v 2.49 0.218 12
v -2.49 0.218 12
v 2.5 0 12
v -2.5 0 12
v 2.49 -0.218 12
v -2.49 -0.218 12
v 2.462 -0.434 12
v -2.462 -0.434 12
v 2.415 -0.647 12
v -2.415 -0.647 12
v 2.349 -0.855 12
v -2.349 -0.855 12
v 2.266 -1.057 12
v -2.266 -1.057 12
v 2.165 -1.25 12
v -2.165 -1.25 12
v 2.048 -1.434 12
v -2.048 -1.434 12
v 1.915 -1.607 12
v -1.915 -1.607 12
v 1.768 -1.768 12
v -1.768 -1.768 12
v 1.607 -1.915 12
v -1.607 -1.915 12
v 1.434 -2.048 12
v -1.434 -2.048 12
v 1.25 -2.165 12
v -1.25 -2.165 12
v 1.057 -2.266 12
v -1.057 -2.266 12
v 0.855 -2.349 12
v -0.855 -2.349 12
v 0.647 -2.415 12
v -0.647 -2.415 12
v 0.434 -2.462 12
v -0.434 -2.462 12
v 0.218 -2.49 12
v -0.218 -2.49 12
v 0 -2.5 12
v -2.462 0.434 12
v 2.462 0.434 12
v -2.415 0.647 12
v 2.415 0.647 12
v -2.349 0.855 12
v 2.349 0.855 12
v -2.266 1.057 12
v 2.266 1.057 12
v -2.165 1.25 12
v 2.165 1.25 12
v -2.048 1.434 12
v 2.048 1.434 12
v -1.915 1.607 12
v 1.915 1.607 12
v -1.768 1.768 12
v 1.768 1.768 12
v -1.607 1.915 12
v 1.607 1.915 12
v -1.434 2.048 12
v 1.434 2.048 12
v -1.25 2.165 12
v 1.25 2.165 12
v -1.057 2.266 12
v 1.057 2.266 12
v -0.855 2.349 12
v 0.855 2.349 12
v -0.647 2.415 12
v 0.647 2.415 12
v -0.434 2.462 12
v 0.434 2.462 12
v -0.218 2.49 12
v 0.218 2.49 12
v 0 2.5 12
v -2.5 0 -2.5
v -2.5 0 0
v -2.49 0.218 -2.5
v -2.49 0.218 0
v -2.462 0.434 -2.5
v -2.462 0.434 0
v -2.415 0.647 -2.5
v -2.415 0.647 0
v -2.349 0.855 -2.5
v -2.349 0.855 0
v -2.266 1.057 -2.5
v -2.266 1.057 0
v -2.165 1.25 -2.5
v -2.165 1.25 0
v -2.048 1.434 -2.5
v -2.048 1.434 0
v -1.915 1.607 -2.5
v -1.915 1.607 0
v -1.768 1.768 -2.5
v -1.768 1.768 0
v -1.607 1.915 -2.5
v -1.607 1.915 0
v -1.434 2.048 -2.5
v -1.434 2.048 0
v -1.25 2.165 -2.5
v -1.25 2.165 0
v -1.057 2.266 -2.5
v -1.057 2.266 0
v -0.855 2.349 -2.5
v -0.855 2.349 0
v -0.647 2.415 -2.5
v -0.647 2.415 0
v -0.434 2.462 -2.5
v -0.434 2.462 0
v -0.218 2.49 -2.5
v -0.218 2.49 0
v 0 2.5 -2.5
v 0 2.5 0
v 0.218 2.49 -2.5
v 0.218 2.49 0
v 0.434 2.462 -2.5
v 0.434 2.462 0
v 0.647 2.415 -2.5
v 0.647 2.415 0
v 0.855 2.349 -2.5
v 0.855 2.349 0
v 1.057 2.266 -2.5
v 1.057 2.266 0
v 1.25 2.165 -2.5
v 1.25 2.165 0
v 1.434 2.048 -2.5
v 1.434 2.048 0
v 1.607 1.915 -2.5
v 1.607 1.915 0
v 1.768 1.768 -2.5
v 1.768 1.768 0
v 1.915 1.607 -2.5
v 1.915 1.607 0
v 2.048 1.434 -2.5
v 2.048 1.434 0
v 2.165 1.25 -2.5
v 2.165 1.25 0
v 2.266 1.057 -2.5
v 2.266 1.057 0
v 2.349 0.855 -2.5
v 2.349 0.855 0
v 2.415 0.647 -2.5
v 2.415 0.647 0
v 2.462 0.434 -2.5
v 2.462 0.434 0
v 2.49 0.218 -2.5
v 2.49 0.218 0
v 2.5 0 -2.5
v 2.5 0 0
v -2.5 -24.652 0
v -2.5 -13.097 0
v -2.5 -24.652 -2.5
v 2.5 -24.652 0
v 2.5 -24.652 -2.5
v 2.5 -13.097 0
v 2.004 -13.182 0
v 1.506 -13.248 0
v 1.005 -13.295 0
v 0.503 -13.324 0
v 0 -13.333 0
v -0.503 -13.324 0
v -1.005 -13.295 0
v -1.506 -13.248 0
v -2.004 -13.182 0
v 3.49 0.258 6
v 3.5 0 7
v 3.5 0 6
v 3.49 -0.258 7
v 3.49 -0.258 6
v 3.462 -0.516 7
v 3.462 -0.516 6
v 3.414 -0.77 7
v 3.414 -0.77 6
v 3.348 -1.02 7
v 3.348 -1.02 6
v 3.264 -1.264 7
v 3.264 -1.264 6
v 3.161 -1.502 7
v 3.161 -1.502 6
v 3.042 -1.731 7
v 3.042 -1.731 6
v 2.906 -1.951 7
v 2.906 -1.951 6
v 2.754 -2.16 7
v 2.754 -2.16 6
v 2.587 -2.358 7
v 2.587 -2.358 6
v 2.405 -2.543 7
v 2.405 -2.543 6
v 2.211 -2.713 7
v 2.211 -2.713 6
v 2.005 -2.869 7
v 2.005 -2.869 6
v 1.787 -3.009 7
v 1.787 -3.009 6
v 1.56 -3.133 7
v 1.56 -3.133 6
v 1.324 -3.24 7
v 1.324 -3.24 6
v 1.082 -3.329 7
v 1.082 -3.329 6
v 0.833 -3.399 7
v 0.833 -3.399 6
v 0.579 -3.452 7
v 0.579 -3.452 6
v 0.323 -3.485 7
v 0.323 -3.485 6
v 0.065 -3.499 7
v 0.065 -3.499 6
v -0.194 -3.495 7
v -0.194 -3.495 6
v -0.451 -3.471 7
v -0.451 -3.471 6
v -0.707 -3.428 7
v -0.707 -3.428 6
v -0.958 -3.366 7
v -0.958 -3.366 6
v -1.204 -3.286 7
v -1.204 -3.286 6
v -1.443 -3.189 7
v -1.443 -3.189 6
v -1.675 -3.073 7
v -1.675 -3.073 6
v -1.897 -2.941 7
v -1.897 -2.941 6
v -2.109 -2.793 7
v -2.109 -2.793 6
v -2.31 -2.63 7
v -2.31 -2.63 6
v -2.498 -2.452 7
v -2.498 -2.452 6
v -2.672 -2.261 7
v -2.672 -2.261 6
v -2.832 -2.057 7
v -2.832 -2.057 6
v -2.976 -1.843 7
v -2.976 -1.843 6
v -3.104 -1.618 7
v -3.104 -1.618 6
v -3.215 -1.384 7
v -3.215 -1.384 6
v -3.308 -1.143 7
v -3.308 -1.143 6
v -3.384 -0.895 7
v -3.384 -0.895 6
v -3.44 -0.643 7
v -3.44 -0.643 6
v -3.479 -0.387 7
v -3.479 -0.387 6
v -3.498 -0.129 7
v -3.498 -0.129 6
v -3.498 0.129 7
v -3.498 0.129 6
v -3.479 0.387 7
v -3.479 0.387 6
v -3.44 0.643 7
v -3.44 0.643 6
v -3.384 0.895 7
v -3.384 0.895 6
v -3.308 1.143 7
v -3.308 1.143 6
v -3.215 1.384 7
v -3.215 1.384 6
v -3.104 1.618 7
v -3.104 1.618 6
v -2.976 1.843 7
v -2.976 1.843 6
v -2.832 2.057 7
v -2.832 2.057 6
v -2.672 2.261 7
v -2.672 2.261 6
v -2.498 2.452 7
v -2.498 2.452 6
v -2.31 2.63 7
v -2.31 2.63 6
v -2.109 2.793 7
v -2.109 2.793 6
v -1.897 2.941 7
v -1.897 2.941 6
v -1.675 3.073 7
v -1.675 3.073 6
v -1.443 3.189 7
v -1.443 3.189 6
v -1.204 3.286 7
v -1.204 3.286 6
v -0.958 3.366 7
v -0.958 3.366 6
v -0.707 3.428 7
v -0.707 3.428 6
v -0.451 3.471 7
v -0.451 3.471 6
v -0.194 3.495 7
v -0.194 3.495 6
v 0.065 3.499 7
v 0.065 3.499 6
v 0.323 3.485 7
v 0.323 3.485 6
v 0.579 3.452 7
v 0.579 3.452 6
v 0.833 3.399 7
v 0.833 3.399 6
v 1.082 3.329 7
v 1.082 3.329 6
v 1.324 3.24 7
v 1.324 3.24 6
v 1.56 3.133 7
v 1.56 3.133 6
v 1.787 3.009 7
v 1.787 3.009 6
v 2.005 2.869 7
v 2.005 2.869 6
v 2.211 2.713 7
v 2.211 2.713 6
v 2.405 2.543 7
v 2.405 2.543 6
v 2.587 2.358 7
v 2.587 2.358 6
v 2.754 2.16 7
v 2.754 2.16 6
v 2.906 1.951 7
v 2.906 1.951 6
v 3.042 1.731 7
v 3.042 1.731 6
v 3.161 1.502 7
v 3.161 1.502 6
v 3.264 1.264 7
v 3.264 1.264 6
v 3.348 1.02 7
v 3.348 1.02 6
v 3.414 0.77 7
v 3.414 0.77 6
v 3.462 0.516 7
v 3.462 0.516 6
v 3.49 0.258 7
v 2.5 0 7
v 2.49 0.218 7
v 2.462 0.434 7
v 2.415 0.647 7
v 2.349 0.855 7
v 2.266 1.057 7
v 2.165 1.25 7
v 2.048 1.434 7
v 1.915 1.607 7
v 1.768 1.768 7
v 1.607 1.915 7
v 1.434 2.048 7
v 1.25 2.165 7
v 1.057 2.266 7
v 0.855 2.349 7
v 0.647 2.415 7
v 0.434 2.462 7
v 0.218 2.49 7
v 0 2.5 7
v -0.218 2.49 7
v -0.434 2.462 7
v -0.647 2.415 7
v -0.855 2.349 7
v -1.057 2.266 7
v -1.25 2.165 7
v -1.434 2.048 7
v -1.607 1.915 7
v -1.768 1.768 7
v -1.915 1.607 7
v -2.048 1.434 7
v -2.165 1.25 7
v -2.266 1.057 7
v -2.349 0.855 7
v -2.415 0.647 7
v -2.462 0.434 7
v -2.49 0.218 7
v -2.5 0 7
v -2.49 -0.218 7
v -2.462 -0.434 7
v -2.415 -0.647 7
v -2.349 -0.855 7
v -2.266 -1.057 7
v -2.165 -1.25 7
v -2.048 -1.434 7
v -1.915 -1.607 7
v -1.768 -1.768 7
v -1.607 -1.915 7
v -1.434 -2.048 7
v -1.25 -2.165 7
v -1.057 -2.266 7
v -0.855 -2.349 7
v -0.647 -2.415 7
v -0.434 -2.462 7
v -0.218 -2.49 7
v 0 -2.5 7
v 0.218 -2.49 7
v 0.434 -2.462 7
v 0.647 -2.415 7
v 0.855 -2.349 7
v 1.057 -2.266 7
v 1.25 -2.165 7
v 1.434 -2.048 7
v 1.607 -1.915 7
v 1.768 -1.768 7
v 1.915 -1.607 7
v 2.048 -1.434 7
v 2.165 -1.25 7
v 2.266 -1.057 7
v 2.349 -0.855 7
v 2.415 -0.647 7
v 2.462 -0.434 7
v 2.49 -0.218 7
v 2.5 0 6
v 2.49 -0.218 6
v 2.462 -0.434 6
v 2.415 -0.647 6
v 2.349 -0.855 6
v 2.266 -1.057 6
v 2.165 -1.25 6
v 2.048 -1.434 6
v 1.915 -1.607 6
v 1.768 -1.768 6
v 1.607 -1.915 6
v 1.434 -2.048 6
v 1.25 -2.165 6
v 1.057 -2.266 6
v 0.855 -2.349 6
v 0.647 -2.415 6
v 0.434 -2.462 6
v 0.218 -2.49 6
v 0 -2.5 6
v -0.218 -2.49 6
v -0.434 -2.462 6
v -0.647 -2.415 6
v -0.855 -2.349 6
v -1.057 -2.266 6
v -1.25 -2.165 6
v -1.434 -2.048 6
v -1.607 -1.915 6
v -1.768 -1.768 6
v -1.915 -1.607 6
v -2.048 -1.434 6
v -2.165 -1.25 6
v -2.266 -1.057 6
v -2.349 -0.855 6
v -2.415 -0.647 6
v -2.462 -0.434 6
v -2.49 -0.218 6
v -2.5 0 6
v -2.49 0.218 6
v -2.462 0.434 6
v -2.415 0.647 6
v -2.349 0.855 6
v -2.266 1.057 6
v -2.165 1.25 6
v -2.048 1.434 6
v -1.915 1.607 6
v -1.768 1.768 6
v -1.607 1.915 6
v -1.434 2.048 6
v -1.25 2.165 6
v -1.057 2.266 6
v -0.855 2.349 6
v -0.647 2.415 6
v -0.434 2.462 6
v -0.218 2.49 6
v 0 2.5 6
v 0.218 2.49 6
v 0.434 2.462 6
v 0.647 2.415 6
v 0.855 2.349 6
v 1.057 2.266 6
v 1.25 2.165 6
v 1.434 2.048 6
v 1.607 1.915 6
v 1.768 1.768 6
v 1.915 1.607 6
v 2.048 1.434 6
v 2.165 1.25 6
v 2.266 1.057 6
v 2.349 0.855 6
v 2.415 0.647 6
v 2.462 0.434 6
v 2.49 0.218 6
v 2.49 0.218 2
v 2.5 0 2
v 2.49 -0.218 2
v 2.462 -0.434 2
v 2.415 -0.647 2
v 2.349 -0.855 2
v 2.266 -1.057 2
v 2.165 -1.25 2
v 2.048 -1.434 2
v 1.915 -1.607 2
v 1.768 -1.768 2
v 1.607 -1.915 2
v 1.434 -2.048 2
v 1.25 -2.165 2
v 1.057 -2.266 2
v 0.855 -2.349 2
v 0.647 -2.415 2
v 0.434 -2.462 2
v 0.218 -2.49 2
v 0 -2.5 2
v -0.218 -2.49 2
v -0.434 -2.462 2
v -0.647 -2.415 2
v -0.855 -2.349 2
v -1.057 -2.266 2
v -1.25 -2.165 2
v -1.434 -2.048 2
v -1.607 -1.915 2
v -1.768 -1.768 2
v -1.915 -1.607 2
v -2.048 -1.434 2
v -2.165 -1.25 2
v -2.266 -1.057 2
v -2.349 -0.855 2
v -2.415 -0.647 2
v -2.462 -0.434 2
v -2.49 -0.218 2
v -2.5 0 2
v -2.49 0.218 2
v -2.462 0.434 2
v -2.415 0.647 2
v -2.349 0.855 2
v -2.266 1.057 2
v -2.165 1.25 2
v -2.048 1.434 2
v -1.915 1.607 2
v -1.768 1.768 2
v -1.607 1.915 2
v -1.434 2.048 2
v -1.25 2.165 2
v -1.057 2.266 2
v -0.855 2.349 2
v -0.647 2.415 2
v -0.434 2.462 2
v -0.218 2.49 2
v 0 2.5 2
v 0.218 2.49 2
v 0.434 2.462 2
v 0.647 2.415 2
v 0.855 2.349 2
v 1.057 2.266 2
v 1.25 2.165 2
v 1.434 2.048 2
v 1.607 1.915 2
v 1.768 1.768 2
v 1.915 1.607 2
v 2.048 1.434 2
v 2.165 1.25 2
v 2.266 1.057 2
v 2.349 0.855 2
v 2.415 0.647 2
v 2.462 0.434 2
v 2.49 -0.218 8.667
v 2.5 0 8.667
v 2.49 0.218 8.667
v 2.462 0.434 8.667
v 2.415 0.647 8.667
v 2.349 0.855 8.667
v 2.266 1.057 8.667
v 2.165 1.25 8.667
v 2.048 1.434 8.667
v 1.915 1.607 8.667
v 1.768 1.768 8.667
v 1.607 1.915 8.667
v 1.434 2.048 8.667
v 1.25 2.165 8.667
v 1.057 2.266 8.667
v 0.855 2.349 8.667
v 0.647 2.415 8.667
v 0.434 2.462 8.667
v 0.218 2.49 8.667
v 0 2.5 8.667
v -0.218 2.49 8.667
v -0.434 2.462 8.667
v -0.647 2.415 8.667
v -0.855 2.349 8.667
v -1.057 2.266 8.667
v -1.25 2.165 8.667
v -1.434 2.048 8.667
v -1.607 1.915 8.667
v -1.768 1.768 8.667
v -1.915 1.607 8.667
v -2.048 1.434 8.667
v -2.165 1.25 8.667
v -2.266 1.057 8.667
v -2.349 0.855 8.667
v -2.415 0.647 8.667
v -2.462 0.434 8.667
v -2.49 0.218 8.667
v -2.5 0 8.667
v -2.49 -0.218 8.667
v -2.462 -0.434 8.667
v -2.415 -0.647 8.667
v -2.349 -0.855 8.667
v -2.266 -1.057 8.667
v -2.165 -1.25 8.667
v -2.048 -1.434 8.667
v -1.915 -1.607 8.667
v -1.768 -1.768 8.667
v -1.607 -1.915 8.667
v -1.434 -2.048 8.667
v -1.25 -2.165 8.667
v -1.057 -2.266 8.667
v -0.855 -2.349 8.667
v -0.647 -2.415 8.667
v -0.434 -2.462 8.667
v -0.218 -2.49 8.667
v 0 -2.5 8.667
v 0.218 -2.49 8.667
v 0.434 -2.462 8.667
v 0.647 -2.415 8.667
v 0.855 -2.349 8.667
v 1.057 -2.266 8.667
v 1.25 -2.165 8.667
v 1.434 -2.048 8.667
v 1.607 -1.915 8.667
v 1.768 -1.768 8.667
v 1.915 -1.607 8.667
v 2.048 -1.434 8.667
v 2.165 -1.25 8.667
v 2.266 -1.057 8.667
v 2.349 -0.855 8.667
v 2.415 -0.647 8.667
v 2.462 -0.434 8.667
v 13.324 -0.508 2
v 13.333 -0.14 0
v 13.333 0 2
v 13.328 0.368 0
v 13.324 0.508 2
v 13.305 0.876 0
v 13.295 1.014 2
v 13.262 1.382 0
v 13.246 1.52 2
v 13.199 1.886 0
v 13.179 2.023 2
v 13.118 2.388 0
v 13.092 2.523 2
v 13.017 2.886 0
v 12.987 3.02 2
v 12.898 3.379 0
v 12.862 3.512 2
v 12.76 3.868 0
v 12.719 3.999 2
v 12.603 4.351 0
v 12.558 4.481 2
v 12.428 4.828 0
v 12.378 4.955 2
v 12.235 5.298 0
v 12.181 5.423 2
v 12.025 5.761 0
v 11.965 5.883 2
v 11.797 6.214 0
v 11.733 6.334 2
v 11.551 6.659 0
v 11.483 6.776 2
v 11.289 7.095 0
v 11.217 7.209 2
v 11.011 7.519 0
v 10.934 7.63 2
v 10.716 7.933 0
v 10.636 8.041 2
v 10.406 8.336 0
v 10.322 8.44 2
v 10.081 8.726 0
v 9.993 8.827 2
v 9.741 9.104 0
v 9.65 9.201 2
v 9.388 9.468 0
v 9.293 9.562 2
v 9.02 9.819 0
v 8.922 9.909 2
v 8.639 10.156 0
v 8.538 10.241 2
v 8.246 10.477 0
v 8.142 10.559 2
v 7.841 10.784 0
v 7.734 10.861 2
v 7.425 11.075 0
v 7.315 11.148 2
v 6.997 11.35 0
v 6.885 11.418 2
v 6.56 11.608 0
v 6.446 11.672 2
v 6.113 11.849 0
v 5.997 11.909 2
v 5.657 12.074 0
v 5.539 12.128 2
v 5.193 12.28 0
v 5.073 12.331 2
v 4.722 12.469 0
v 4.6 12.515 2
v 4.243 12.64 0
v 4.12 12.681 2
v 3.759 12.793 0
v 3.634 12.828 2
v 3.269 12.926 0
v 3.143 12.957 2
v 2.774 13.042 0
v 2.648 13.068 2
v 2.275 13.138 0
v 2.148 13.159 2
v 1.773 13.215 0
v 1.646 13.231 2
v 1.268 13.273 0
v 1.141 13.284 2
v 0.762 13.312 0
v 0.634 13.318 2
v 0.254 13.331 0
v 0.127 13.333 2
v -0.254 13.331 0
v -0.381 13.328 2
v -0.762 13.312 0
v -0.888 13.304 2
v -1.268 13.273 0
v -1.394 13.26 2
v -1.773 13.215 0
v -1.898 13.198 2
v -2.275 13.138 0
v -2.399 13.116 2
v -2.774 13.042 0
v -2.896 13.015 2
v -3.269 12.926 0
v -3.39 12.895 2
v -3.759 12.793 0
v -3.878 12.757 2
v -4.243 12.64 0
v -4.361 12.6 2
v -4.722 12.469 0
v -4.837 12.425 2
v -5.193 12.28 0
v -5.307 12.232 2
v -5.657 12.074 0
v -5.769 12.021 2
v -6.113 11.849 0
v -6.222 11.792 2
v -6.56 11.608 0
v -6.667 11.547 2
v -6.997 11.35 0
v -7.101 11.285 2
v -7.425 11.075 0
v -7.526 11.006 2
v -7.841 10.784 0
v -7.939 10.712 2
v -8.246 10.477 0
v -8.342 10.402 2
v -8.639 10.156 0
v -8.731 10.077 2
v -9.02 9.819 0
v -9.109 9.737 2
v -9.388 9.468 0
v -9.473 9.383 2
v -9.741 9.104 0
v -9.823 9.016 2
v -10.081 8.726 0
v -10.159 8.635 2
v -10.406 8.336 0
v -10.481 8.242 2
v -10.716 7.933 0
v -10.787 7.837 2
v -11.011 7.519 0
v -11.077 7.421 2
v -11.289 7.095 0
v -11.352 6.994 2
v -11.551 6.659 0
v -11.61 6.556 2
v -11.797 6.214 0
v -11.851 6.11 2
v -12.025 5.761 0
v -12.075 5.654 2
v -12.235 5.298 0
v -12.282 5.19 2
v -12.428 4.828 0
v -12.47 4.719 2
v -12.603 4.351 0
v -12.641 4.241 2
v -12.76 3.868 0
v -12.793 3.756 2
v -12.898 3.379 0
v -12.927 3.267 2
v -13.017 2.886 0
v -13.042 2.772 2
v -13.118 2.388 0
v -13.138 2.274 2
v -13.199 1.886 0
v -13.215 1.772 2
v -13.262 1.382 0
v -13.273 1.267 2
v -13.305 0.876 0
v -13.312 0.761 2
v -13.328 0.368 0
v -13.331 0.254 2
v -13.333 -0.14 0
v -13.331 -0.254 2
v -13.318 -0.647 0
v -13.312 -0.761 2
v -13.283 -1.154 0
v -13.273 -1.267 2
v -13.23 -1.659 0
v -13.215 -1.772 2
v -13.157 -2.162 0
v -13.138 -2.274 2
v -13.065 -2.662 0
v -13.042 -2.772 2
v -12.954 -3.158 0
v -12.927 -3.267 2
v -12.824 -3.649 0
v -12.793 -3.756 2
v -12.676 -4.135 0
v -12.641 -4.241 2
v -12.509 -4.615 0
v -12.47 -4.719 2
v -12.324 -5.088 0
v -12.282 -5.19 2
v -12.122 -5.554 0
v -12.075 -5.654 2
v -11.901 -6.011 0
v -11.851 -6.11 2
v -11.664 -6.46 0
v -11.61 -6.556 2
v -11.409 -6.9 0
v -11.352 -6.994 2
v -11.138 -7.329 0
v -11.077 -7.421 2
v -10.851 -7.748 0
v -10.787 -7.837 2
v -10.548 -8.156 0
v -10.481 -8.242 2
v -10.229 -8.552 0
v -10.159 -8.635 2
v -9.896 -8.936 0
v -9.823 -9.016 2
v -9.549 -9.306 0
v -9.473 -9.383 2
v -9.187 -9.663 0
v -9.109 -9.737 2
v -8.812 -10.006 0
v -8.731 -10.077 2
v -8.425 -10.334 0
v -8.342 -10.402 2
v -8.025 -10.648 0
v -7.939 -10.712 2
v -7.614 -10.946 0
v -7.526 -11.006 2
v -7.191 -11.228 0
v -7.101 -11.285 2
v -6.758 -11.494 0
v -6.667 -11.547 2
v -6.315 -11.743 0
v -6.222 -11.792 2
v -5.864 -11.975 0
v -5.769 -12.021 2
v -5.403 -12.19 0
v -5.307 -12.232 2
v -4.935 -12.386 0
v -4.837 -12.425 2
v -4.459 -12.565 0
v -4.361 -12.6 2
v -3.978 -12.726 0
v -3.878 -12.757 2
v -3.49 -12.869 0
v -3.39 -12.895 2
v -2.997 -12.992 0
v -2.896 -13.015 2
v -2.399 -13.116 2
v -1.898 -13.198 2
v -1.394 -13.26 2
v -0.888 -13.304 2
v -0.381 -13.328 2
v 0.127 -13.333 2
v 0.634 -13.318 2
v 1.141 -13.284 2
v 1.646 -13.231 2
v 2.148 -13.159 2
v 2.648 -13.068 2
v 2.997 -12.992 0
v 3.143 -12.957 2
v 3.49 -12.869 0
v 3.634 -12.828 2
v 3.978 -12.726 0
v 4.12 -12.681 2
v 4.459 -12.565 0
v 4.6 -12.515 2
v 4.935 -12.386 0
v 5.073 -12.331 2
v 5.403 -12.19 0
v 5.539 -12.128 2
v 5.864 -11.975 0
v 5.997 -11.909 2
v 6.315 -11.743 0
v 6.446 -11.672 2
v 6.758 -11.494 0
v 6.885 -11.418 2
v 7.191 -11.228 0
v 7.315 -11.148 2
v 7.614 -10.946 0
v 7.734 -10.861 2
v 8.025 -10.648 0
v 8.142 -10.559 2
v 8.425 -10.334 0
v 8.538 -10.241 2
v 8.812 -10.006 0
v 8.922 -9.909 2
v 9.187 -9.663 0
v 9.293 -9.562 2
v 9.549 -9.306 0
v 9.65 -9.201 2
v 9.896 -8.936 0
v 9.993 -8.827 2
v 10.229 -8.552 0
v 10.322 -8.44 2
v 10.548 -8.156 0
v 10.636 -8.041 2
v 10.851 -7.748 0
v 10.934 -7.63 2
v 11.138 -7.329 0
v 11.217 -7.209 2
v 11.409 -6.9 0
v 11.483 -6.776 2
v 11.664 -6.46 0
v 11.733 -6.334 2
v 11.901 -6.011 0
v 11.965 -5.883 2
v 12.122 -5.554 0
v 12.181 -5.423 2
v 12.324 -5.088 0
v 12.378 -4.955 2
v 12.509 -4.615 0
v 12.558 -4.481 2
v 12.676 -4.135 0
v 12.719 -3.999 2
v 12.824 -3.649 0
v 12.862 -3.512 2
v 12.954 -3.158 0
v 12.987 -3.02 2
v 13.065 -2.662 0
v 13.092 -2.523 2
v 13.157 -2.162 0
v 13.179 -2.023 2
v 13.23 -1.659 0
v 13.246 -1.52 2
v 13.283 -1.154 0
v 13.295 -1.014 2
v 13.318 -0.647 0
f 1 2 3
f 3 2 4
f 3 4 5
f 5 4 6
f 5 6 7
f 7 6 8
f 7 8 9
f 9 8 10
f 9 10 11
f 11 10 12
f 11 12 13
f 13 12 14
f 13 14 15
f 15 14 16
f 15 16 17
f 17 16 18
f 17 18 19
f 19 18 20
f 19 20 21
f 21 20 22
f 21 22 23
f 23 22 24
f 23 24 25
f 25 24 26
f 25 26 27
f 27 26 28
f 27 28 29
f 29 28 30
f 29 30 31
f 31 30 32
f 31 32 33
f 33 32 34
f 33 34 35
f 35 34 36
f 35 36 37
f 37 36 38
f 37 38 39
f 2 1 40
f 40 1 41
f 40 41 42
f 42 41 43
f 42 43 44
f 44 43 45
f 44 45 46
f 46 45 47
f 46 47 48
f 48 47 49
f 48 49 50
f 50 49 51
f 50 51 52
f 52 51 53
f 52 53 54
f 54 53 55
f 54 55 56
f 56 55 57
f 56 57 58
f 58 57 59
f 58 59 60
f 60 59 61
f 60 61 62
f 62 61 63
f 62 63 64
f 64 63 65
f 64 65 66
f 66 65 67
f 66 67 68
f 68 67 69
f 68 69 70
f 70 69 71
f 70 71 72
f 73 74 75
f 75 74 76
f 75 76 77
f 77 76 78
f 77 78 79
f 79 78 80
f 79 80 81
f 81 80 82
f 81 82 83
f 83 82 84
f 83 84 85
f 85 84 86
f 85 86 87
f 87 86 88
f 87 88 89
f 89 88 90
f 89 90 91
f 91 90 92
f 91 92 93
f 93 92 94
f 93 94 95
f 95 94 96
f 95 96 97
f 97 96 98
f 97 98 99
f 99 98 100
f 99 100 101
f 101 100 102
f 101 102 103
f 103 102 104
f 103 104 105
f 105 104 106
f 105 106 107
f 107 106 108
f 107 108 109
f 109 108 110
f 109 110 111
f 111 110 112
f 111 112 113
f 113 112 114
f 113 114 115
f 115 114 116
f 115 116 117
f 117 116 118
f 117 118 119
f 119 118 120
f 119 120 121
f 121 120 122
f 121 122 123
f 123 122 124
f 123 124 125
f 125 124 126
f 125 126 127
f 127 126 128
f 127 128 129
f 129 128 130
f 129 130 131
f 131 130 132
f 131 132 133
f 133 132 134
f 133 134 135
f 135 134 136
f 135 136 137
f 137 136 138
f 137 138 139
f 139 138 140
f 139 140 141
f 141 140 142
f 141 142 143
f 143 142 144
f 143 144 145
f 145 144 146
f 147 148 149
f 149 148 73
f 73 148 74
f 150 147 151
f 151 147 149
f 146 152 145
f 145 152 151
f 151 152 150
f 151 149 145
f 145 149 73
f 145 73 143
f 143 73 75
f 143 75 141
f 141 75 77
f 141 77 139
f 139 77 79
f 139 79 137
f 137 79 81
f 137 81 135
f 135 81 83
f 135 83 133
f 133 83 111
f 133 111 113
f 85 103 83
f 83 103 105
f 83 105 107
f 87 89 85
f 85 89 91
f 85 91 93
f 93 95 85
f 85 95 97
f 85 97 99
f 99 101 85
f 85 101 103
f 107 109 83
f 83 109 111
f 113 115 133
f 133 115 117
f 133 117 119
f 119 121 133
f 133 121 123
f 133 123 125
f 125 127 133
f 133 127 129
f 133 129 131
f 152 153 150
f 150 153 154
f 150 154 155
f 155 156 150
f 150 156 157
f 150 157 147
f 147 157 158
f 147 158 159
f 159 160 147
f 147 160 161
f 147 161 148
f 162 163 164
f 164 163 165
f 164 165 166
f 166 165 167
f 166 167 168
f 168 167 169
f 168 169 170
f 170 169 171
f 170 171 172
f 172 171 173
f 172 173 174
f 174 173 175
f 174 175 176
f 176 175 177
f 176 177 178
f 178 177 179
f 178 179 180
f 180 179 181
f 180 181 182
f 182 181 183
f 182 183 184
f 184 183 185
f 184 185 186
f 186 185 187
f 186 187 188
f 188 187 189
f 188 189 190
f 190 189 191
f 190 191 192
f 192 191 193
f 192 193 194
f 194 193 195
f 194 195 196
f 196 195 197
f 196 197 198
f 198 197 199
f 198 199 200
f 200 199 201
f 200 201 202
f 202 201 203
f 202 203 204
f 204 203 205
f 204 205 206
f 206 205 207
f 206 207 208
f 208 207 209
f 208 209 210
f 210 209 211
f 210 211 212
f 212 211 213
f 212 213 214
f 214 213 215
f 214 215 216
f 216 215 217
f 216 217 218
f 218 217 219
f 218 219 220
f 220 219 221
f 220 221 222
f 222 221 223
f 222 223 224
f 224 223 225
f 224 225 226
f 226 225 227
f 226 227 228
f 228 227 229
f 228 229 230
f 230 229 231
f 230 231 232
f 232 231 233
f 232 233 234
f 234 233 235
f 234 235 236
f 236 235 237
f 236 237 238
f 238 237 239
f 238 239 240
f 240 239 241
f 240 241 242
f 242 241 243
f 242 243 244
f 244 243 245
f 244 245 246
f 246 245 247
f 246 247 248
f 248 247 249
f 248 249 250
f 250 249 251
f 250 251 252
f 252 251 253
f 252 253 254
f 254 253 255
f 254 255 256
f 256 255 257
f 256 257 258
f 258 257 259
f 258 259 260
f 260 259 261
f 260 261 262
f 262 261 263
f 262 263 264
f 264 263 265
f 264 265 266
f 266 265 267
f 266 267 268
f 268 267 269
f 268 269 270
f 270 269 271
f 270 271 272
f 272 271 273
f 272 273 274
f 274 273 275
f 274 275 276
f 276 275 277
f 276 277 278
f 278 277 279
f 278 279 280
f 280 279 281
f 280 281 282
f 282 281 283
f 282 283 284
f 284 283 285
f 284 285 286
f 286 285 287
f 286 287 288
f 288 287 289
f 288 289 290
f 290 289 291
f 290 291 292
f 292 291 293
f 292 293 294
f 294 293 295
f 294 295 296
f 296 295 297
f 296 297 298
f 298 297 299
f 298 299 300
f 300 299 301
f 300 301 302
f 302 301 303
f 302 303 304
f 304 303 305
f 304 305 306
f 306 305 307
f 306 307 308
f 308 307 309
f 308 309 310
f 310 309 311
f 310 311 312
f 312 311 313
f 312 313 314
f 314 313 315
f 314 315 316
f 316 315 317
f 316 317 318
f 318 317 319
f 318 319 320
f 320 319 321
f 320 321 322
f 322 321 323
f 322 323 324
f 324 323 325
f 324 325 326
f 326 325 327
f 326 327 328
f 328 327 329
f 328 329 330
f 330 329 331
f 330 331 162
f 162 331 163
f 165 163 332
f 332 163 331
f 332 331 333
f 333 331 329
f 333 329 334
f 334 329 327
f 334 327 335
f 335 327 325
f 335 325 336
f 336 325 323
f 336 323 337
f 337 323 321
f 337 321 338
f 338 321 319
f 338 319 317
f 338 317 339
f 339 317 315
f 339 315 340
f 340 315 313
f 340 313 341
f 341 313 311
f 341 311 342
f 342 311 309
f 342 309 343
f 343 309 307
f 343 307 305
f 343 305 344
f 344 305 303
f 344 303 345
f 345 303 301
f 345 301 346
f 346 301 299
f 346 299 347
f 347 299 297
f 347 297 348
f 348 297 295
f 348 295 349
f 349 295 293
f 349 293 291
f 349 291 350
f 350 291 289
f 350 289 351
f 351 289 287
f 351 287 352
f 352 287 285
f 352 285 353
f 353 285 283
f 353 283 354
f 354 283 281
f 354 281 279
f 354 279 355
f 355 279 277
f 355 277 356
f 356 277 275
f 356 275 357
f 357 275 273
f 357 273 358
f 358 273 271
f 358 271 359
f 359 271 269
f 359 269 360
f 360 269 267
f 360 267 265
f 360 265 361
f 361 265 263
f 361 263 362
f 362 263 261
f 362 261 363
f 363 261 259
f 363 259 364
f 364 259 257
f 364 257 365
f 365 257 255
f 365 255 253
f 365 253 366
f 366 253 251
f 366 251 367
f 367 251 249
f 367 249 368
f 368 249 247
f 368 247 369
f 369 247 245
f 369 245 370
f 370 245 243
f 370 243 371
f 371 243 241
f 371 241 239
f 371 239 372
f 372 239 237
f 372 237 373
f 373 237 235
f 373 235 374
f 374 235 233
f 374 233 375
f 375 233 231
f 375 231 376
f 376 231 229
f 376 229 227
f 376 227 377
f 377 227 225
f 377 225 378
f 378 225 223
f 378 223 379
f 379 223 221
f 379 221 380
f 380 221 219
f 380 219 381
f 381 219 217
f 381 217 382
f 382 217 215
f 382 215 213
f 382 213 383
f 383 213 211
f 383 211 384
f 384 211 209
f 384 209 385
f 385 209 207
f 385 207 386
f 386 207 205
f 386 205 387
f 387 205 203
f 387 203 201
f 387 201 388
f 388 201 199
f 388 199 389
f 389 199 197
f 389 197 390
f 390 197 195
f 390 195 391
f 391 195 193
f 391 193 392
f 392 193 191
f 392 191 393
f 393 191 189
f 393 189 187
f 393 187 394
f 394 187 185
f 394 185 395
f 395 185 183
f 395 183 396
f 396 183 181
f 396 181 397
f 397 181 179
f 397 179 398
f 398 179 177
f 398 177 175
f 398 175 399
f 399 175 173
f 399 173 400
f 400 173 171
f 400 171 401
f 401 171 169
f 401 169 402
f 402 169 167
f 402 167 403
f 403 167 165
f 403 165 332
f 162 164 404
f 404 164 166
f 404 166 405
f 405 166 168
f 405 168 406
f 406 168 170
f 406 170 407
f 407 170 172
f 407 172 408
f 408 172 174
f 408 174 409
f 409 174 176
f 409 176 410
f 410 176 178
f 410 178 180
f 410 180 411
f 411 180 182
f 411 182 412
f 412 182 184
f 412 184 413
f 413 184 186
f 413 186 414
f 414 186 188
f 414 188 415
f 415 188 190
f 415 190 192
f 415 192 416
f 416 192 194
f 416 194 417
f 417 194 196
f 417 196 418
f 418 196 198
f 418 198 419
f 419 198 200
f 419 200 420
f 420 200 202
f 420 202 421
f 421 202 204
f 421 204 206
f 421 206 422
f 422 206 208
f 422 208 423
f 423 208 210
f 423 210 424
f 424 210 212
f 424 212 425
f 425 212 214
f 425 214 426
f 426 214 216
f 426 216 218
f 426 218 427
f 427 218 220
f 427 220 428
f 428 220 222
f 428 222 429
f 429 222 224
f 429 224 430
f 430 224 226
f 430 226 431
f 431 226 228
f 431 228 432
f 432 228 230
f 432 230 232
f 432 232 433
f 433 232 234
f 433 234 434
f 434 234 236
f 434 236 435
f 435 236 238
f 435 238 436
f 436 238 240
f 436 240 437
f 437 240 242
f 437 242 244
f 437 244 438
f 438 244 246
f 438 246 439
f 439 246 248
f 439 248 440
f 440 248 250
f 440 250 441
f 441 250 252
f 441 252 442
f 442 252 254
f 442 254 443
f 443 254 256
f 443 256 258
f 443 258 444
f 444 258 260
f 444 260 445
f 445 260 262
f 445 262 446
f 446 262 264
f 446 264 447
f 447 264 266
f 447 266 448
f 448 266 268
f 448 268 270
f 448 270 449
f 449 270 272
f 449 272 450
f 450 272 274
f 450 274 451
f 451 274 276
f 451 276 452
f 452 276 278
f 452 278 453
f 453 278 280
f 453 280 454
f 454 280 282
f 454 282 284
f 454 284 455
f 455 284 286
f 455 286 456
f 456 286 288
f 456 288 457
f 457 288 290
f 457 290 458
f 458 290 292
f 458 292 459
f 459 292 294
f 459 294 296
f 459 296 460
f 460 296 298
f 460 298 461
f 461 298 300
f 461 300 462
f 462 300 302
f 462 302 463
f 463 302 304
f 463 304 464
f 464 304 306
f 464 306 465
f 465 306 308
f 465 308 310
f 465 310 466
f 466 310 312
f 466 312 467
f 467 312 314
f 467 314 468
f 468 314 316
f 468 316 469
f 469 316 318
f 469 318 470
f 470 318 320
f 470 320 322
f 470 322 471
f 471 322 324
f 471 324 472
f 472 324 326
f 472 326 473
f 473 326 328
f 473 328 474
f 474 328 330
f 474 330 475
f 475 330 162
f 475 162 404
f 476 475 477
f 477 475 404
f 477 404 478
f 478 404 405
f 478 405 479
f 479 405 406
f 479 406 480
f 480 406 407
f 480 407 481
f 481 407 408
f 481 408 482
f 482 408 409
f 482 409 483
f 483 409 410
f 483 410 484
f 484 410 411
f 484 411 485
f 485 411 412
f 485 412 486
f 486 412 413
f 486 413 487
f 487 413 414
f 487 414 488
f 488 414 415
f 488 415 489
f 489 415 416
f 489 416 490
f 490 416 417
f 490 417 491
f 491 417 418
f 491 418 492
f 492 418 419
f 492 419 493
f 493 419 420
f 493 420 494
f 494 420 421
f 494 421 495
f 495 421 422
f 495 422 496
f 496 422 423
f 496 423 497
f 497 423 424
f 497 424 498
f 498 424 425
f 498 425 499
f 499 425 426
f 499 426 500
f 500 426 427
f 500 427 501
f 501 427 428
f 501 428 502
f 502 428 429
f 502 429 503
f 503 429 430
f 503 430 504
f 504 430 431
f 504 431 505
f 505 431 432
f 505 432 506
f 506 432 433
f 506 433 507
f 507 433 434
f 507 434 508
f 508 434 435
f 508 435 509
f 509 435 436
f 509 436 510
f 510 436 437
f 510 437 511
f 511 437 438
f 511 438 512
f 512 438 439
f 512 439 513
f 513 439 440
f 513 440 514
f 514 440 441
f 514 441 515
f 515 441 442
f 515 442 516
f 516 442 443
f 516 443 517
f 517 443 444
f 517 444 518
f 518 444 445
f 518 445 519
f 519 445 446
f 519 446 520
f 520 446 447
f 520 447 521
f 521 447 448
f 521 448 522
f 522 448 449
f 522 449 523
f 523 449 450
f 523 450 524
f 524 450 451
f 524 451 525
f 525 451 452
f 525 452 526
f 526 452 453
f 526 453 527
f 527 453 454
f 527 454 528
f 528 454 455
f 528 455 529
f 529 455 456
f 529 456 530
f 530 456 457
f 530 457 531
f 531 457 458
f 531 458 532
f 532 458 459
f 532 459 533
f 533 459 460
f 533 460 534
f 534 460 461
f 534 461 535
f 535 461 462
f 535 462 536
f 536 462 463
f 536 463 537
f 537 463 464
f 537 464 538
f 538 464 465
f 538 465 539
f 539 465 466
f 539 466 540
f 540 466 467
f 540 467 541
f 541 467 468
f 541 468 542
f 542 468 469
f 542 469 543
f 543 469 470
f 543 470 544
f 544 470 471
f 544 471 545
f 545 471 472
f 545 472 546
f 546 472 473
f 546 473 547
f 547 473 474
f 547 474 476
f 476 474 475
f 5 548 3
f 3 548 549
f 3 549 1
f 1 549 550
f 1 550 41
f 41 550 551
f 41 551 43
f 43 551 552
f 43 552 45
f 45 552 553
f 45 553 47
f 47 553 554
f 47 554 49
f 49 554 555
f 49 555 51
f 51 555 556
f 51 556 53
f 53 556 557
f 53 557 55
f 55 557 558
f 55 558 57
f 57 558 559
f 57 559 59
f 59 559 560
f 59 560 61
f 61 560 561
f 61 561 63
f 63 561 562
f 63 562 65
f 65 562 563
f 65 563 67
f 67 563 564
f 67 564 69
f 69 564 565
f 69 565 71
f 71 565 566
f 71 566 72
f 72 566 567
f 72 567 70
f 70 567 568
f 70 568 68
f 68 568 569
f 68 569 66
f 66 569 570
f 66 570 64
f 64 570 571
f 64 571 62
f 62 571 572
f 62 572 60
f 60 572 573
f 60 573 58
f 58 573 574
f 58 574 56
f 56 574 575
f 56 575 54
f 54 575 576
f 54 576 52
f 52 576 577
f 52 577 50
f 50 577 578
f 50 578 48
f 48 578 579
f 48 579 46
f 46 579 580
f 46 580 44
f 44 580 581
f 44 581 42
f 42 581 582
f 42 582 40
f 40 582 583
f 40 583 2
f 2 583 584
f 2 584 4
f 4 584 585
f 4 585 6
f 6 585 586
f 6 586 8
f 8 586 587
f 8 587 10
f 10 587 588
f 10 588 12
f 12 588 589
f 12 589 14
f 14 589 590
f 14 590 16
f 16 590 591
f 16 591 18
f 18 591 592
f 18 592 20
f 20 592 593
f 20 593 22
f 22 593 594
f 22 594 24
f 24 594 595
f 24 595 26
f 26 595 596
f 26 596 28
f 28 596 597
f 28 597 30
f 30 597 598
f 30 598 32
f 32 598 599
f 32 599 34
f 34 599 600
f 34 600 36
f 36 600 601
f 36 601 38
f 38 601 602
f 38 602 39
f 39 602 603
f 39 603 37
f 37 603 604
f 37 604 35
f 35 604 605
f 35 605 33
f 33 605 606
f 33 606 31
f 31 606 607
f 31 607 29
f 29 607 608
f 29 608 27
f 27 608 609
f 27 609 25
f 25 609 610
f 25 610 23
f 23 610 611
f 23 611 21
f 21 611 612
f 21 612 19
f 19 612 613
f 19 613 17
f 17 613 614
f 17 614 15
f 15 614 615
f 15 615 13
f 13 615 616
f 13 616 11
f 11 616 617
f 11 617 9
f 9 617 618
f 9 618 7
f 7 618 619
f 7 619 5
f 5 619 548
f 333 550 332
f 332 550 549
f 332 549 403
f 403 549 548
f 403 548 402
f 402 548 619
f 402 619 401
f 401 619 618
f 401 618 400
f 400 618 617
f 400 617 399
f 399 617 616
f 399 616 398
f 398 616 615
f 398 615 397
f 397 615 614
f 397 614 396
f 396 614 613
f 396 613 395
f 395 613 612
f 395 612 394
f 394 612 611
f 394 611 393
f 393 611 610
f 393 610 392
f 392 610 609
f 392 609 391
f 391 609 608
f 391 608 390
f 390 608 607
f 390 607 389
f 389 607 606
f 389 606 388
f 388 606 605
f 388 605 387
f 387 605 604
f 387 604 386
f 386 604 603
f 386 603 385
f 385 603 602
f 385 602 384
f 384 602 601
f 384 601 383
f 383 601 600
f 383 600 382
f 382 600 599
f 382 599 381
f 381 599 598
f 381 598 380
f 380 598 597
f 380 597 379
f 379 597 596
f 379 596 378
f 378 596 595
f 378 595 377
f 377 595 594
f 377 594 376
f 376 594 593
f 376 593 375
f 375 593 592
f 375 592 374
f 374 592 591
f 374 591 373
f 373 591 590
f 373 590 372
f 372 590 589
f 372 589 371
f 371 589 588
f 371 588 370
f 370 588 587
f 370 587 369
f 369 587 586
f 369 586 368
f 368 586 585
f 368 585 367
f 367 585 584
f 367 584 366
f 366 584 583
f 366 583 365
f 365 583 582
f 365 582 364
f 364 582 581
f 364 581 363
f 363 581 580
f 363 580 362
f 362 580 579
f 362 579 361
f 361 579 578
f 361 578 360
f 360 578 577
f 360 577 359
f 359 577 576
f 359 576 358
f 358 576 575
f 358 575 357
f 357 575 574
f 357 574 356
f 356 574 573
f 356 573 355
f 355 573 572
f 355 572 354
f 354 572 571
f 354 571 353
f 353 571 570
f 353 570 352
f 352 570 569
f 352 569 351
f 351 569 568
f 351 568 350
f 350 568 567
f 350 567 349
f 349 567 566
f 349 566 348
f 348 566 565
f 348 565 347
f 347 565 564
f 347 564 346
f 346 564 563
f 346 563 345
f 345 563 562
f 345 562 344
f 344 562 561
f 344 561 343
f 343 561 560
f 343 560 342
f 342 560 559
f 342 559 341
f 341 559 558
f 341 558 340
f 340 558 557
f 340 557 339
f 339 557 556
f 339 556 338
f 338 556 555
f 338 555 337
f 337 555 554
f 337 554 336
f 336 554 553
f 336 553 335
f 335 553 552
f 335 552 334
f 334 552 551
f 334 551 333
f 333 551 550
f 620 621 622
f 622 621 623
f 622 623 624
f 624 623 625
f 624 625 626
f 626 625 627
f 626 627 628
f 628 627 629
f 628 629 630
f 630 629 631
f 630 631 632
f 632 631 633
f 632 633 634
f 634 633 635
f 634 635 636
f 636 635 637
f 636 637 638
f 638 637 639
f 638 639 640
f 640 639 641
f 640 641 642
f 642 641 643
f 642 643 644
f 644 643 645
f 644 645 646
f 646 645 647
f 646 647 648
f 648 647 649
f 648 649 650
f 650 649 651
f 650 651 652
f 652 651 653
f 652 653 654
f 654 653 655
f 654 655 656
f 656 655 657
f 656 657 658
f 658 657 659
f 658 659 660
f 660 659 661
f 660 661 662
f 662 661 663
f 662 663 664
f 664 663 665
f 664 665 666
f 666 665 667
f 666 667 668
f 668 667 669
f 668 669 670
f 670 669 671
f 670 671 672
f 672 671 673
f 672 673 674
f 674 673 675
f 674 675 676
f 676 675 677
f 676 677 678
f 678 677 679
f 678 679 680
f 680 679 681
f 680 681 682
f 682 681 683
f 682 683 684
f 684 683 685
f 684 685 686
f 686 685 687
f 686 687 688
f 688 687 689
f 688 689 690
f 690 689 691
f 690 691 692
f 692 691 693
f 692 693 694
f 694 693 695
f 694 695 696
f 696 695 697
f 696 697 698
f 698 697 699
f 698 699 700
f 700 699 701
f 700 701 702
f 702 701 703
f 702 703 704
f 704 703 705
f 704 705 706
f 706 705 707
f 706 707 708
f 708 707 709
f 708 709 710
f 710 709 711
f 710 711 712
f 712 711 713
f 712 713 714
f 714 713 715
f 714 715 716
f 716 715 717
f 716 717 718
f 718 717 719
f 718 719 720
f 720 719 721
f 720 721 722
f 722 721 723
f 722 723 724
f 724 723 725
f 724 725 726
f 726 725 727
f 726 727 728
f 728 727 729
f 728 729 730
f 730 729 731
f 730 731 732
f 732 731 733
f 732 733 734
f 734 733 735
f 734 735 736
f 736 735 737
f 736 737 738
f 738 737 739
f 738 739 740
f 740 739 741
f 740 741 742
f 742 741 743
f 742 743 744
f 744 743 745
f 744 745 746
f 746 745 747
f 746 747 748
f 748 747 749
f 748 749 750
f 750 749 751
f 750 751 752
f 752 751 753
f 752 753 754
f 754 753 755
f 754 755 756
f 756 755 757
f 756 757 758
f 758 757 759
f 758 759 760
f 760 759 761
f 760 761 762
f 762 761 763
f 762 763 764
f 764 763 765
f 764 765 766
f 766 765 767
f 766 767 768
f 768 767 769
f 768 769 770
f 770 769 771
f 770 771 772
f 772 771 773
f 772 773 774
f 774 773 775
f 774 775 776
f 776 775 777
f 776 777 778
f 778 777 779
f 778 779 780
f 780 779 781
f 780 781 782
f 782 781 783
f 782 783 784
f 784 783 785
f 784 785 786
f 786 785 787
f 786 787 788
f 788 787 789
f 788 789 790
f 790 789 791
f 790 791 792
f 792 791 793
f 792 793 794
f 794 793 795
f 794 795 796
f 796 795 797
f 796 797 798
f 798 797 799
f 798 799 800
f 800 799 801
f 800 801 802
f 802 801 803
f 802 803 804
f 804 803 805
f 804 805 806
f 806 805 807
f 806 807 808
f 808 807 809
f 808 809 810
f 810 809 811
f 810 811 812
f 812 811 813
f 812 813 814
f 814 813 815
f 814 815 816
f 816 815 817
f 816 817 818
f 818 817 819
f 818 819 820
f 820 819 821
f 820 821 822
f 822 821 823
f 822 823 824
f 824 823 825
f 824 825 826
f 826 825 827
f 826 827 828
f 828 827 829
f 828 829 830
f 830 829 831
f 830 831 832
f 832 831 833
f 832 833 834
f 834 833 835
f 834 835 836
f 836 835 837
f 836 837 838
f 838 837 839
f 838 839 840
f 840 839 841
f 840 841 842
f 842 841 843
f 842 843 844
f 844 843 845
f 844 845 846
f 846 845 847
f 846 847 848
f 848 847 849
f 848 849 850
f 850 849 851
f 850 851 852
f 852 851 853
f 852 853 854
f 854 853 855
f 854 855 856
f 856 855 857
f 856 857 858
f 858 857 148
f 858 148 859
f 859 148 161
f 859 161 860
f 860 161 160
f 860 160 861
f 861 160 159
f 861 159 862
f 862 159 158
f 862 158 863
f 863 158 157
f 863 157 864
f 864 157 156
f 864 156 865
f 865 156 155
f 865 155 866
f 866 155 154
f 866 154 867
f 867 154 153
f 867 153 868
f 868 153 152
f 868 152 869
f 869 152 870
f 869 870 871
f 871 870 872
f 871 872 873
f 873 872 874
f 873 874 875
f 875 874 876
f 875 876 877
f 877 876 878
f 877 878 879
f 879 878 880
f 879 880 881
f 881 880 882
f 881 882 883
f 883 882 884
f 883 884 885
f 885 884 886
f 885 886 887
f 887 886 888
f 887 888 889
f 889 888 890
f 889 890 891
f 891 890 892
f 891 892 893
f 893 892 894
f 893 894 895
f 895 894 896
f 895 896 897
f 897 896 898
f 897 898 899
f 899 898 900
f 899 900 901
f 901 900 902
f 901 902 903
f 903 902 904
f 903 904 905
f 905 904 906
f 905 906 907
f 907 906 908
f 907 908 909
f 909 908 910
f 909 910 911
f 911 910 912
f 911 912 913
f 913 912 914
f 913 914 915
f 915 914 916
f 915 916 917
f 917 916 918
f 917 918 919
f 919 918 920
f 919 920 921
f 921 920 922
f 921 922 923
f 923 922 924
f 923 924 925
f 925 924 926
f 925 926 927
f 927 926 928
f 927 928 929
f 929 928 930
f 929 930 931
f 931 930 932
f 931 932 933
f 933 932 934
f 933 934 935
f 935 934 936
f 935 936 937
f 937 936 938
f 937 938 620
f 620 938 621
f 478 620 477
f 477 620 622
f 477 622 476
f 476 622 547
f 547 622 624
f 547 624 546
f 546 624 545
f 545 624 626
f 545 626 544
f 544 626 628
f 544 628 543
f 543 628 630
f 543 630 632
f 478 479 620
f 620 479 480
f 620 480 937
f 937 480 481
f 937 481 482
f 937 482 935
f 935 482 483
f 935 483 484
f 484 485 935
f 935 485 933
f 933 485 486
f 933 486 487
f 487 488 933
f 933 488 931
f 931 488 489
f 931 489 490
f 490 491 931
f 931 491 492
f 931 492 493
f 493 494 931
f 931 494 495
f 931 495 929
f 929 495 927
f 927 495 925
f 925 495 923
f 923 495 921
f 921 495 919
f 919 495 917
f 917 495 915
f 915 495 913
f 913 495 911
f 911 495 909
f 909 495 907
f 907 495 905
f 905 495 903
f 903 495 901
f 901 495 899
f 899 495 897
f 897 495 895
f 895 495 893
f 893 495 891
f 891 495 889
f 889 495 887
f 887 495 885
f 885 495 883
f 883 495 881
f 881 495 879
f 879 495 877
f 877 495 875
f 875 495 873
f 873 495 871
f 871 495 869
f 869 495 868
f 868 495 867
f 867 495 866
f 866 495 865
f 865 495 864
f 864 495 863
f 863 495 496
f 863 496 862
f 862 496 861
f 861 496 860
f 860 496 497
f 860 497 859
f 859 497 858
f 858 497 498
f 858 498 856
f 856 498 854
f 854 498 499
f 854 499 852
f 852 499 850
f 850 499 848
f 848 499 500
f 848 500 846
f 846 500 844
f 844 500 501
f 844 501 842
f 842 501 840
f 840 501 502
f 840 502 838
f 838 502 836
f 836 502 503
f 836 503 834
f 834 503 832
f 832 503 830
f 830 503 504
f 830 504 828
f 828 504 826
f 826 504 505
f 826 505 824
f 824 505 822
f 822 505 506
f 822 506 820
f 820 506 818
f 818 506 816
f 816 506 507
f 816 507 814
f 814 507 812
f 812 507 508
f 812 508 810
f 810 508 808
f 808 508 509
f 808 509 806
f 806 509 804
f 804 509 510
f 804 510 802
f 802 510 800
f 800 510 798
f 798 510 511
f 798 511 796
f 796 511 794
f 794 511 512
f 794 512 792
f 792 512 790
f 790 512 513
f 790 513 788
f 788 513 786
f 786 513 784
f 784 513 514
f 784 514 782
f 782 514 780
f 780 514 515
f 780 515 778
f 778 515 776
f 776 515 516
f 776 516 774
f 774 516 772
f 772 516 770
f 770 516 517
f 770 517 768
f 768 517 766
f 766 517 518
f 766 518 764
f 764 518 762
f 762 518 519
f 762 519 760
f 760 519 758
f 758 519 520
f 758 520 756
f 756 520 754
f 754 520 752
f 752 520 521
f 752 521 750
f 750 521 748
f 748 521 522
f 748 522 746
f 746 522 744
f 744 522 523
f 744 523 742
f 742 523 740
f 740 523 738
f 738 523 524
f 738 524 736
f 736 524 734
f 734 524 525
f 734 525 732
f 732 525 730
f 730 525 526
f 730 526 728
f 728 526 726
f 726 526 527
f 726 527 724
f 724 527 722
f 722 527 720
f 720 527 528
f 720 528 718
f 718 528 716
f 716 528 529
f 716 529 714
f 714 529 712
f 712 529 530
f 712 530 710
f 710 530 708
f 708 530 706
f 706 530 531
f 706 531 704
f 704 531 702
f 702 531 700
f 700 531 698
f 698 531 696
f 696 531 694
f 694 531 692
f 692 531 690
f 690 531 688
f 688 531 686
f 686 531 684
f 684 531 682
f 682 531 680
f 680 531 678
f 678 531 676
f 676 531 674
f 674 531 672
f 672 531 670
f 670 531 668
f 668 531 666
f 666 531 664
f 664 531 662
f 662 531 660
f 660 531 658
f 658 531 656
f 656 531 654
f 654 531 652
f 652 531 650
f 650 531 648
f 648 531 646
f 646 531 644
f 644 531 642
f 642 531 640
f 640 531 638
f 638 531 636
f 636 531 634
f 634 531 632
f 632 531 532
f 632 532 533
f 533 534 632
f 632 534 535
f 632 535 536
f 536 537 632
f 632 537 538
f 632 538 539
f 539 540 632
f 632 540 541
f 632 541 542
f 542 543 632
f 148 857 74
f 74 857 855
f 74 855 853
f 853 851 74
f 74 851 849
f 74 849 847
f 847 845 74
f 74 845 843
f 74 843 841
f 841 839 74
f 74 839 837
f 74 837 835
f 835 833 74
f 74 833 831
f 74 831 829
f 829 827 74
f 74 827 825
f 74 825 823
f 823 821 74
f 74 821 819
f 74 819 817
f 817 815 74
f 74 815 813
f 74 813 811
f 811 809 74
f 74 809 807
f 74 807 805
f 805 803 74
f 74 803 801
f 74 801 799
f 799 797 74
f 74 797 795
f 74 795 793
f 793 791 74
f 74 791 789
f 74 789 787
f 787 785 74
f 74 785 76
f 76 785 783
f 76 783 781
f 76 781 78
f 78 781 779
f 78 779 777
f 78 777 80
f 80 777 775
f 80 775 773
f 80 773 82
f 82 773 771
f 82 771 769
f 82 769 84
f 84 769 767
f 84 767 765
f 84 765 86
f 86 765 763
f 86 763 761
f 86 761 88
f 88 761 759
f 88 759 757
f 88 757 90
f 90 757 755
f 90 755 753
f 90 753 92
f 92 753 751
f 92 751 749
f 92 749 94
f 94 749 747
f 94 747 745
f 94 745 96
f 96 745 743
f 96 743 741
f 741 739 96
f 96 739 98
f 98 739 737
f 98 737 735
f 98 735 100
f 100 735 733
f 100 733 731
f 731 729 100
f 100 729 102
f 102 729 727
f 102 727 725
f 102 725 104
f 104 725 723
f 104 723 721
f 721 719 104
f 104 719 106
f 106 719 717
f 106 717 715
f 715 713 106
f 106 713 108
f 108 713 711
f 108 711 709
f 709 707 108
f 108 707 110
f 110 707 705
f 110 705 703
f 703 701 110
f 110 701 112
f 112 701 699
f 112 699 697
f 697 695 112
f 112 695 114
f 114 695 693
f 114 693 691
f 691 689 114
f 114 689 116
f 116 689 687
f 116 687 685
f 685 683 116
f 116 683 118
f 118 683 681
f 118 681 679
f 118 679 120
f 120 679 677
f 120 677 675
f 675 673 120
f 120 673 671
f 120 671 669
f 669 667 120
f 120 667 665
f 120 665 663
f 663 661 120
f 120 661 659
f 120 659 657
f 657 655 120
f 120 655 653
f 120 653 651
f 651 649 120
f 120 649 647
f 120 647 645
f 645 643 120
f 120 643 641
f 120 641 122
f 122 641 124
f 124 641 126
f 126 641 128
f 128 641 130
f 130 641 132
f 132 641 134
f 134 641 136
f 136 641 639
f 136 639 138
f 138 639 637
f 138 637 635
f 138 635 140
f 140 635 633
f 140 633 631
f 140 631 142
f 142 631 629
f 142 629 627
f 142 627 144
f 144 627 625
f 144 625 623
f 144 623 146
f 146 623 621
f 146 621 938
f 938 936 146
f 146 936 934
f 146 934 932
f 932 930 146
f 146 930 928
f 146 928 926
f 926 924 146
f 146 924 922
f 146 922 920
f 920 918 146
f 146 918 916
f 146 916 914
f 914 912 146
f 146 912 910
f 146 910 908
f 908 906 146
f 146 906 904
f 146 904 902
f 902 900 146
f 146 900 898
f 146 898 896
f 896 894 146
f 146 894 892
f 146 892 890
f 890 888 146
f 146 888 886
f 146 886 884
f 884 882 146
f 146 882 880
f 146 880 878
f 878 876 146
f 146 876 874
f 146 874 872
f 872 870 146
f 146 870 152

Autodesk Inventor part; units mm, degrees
ref_plane "YZ Plane" through (0, 0, 0) normal (1, 0, 0) x (0, 1, 0)
ref_plane "XZ Plane" through (0, 0, 0) normal (0, 1, 0) x (-1, 0, 0)
sketch "Sketch1" plane through (0, 0, 0) normal (0, 0, 1) x (1, 0, 0)
  circle A0 centre (0, 0) radius 13.3333
  dimension "d0" = 26.6667
extrude "Extrusion1" add sketch "Sketch1" along normal blind 2
sketch "Sketch2" plane through (0, 0, 2) normal (0, 0, 1) x (1, 0, 0)
  circle A0 centre (0, 0) radius 2.5
  dimension "d3" = 5
extrude "Extrusion2" add sketch "Sketch2" along normal blind 7
ref_plane "Work Plane1" through (0, 0, 7) normal (0, 0, 1) x (1, 0, 0)
sketch "Sketch5" plane through (0, 0, 7) normal (0, 0, 1) x (1, 0, 0)
  circle A0 centre (0, 0) radius 2.5 projected
  circle A1 centre (0, 0) radius 3.5
  dimension "d18" = 1
extrude "Extrusion7" add sketch "Sketch5" against normal blind 1
sketch "Sketch6" plane through (0, 0, 0) normal (0, 0, -1) x (-1, 0, 0)
  circle A0 centre (0, 0) radius 13.3333 projected
  circle A1 centre (0, 0) radius 2.5
  line L0 (-2.5, 0) -> (2.5, 0)
  line L1 (2.5, 0) -> (2.5, -24.6522)
  line L2 (2.5, -24.6522) -> (-2.5, -24.6522)
  line L3 (-2.5, -24.6522) -> (-2.5, 0)
  circle A2 centre (0, 0) radius 2.5 projected
  point P0 (2.5, 0)
  dimension "d23" = 5
  dimension "d24" = 5
  dimension "d25" = 24.6522
extrude "Extrusion8" add sketch "Sketch6" along normal blind 2.5 contours L3 A1 L1 A0 | A0 L1 L2 L3 | L0 A1 | A1 L0 picked at (-0.1004, -9.6986)
sketch "Sketch8" plane through (0, 0, 9) normal (0, 0, 1) x (1, 0, 0)
  circle A0 centre (0, 0) radius 2.5 projected
extrude "Extrusion10" add sketch "Sketch8" along normal blind 3
equation "\"d0\" = OG_gearDiameter"
equation "\"d1\" = OG_gearThickness"
equation "\"d3\" = OG_shaftDiameter"
equation "\"d4\" = OG_shaftLength"
equation "\"d18\" = OG_skirtOffset"
equation "\"d19\" = OG_skirtThickness"
equation "\"Wheel_Related_W_\" = 0"
equation "\"W_innerDepth\" = 4"
equation "\"W_wallThickness\" = 2"
equation "\"W_holesClearance\" = 0.3"
equation "\"W_outerGearHoleDiameter\" = 5.3"
equation "\"W_innerGearHoleDiameter\" = 10.1"
equation "\"TempSpotReserved7\" = 0"
equation "\"TempSpotReserved8\" = 0"
equation "\"TempSpotReserved9\" = 0"
equation "\"TempSpotReserved10\" = 0"
equation "\"TempSpotReserved11\" = 0"
equation "\"TempSpotReserved12\" = 0"
equation "\"TempSpotReserved13\" = 0"
equation "\"TempSpotReserved14\" = 0"
equation "\"TempSpotReserved15\" = 0"
equation "\"TempSpotReserved16\" = 0"
equation "\"TempSpotReserved17\" = 0"
equation "\"TempSpotReserved18\" = 0"
equation "\"TempSpotReserved19\" = 0"
equation "\"TempSpotReserved20\" = 0"
equation "\"Inner_Gear_Related_IG_\" = 0"
equation "\"IG_shaftDiameter\" = 7.5"
equation "\"IG_shaftLength\" = 15"
equation "\"IG_gearThickness\" = 2"
equation "\"TempSpotReserved25\" = 0"
equation "\"TempSpotReserved26\" = 0"
equation "\"TempSpotReserved27\" = 0"
equation "\"TempSpotReserved28\" = 0"
equation "\"TempSpotReserved29\" = 0"
equation "\"TempSpotReserved30\" = 0"
equation "\"TempSpotReserved31\" = 0"
equation "\"TempSpotReserved32\" = 0"
equation "\"TempSpotReserved33\" = 0"
equation "\"TempSpotReserved34\" = 0"
equation "\"TempSpotReserved35\" = 0"
equation "\"TempSpotReserved36\" = 0"
equation "\"TempSpotReserved37\" = 0"
equation "\"TempSpotReserved38\" = 0"
equation "\"TempSpotReserved39\" = 0"
equation "\"TempSpotReserved40\" = 0"
equation "\"Outer_Gear_Related_OG_\" = 0"
equation "\"OG_distanceFromCenter\" = 23.33333"
equation "\"OG_shaftDiameter\" = 5"
equation "\"OG_gearDiameter\" = 26.66667"
equation "\"OG_shaftLength\" = 7"
equation "\"OG_gearThickness\" = 2"
equation "\"TempSpotReserved47\" = 0"
equation "\"TempSpotReserved48\" = 0"
equation "\"TempSpotReserved49\" = 0"
equation "\"TempSpotReserved50\" = 0"
equation "\"TempSpotReserved51\" = 0"
equation "\"TempSpotReserved52\" = 0"
equation "\"TempSpotReserved53\" = 0"
equation "\"TempSpotReserved54\" = 0"
equation "\"TempSpotReserved55\" = 0"
equation "\"TempSpotReserved56\" = 0"
equation "\"TempSpotReserved57\" = 0"
equation "\"TempSpotReserved58\" = 0"
equation "\"TempSpotReserved59\" = 0"
equation "\"TempSpotReserved60\" = 0"
equation "\"Leg_Extensions_Related_LE_\" = 0"
equation "\"LE_baseDiameter\" = 5"
equation "\"LE_maxLength\" = 24.6522"
equation "\"LE_thickness\" = 2.5"
equation "\"IG_ratioToOuterGear\" = 0.75"
equation "\"B_bearingThickness\" = 1"
equation "\"TempSpotReserved43\" = 0"
equation "\"TempSpotReserved45\" = 0"
equation "\"Thisisatest\" = 25.4"
equation "\"TempSpotReserved46\" = 0"
equation "\"TempSpotReserved44\" = 0"
equation "\"LE_offsetAboveOuterGear\" = 0"
equation "\"Bearing_Related_B_\" = 0"
equation "\"TempSpotReserved42\" = 0"
equation "\"d17\" = -W_wallThickness"
equation "\"OG_skirtOffset\" = 1"
equation "\"OG_skirtThickness\" = 1"
equation "\"IG_skirtThickness\" = 2"
equation "\"IG_extentionLength\" = 18.33333"
equation "\"IG_extentionThickness\" = 3"
equation "\"IG_slitWidth\" = 4"
equation "\"IG_slitlength\" = 8"
equation "\"IG_slitDistanceFromCenterHole\" = 8"
equation "\"IG_slitClearance\" = 0.2"
equation "\"Reserved_10\" = 0"
equation "\"Reserved_9\" = 0"
equation "\"Reserved_11\" = 0"
equation "\"Reserved_12\" = 0"
equation "\"Reserved_8\" = 0"
equation "\"Reserved_7\" = 0"
equation "\"Reserved_26\" = 0"
equation "\"Reserved_20\" = 0"
equation "\"Reserved_22\" = 0"
equation "\"Reserved_23\" = 0"
equation "\"Reserved_25\" = 0"
equation "\"Reserved_24\" = 0"
equation "\"Reserved_21\" = 0"
equation "\"Reserved_19\" = 0"
equation "\"Reserved_27\" = 0"
equation "\"Reserved_14\" = 0"
equation "\"Reserved_15\" = 0"
equation "\"Reserved_16\" = 0"
equation "\"Reserved_13\" = 0"
equation "\"Reserved_17\" = 0"
equation "\"Reserved_18\" = 0"
equation "\"Bearing_Related_BR_\" = 0"
equation "\"BR_bearingThickness\" = 1"
equation "\"Block_Related_BL_\" = 0"
equation "\"BL_width\" = 3.8"
equation "\"BL_length\" = 7.8"
equation "\"W_filletRadius\" = 0.25"
equation "\"W_extrutsionTaperAngle\" = 2deg"
equation "\"OG_protrudeDistance\" = 3"
properties part number "outerGear"
